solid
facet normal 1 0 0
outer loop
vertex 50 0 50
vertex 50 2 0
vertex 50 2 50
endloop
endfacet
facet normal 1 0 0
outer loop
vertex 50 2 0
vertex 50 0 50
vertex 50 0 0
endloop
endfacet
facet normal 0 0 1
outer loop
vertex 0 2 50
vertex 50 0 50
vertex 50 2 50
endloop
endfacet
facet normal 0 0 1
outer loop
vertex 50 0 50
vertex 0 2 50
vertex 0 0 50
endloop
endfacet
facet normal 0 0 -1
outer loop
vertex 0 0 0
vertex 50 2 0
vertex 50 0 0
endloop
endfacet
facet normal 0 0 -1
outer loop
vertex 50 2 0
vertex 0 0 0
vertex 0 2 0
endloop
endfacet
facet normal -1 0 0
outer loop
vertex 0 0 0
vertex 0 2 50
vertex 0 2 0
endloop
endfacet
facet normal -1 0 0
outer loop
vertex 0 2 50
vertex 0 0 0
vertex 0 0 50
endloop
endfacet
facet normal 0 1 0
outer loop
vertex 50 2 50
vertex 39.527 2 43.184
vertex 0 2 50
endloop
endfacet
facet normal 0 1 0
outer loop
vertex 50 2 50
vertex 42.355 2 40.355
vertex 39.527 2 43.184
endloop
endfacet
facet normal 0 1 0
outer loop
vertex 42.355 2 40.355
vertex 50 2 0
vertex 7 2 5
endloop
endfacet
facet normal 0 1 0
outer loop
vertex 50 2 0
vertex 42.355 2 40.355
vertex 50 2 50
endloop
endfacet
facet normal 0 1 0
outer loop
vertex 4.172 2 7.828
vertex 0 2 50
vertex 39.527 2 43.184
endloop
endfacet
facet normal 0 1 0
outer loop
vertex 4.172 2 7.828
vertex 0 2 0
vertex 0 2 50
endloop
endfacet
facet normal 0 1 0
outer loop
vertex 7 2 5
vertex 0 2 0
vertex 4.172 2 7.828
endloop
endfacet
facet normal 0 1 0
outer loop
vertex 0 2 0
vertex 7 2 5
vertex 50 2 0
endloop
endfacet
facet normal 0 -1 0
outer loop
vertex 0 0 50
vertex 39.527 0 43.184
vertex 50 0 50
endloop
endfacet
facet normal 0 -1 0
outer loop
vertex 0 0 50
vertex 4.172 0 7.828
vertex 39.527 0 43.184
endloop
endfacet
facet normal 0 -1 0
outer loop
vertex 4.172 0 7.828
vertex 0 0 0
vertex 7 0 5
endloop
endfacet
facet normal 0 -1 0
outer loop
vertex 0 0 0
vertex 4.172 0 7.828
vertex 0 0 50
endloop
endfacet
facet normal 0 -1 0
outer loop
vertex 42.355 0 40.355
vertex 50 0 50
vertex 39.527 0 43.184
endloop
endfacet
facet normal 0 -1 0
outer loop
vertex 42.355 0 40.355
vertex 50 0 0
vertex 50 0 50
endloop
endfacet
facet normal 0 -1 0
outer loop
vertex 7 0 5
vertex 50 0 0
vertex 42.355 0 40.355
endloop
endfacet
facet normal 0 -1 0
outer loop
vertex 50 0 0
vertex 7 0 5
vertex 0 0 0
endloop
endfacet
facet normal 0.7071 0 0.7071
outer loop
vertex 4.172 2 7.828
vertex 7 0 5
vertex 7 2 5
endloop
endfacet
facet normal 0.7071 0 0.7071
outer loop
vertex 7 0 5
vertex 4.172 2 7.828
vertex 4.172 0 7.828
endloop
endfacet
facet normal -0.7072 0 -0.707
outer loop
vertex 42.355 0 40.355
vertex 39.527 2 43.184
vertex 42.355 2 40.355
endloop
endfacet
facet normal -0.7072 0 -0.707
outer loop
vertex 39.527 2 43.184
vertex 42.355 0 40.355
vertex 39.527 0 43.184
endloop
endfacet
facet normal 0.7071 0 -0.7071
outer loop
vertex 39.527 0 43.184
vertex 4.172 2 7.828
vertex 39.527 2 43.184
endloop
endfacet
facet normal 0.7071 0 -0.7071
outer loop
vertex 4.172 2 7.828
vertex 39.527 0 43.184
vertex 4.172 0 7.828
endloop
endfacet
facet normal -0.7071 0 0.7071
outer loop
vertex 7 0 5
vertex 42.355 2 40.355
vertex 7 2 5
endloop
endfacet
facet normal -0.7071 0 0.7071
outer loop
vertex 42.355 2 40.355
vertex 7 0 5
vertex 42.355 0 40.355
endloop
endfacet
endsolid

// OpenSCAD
difference(){
cube([50.000000, 2.000000, 50.000000]);
translate([7.000000, -1.000000, 5.000000])
rotate([0.000000, -45.000000, 0.000000])
cube([50.000000, 4.000000, 4.000000]);
}
